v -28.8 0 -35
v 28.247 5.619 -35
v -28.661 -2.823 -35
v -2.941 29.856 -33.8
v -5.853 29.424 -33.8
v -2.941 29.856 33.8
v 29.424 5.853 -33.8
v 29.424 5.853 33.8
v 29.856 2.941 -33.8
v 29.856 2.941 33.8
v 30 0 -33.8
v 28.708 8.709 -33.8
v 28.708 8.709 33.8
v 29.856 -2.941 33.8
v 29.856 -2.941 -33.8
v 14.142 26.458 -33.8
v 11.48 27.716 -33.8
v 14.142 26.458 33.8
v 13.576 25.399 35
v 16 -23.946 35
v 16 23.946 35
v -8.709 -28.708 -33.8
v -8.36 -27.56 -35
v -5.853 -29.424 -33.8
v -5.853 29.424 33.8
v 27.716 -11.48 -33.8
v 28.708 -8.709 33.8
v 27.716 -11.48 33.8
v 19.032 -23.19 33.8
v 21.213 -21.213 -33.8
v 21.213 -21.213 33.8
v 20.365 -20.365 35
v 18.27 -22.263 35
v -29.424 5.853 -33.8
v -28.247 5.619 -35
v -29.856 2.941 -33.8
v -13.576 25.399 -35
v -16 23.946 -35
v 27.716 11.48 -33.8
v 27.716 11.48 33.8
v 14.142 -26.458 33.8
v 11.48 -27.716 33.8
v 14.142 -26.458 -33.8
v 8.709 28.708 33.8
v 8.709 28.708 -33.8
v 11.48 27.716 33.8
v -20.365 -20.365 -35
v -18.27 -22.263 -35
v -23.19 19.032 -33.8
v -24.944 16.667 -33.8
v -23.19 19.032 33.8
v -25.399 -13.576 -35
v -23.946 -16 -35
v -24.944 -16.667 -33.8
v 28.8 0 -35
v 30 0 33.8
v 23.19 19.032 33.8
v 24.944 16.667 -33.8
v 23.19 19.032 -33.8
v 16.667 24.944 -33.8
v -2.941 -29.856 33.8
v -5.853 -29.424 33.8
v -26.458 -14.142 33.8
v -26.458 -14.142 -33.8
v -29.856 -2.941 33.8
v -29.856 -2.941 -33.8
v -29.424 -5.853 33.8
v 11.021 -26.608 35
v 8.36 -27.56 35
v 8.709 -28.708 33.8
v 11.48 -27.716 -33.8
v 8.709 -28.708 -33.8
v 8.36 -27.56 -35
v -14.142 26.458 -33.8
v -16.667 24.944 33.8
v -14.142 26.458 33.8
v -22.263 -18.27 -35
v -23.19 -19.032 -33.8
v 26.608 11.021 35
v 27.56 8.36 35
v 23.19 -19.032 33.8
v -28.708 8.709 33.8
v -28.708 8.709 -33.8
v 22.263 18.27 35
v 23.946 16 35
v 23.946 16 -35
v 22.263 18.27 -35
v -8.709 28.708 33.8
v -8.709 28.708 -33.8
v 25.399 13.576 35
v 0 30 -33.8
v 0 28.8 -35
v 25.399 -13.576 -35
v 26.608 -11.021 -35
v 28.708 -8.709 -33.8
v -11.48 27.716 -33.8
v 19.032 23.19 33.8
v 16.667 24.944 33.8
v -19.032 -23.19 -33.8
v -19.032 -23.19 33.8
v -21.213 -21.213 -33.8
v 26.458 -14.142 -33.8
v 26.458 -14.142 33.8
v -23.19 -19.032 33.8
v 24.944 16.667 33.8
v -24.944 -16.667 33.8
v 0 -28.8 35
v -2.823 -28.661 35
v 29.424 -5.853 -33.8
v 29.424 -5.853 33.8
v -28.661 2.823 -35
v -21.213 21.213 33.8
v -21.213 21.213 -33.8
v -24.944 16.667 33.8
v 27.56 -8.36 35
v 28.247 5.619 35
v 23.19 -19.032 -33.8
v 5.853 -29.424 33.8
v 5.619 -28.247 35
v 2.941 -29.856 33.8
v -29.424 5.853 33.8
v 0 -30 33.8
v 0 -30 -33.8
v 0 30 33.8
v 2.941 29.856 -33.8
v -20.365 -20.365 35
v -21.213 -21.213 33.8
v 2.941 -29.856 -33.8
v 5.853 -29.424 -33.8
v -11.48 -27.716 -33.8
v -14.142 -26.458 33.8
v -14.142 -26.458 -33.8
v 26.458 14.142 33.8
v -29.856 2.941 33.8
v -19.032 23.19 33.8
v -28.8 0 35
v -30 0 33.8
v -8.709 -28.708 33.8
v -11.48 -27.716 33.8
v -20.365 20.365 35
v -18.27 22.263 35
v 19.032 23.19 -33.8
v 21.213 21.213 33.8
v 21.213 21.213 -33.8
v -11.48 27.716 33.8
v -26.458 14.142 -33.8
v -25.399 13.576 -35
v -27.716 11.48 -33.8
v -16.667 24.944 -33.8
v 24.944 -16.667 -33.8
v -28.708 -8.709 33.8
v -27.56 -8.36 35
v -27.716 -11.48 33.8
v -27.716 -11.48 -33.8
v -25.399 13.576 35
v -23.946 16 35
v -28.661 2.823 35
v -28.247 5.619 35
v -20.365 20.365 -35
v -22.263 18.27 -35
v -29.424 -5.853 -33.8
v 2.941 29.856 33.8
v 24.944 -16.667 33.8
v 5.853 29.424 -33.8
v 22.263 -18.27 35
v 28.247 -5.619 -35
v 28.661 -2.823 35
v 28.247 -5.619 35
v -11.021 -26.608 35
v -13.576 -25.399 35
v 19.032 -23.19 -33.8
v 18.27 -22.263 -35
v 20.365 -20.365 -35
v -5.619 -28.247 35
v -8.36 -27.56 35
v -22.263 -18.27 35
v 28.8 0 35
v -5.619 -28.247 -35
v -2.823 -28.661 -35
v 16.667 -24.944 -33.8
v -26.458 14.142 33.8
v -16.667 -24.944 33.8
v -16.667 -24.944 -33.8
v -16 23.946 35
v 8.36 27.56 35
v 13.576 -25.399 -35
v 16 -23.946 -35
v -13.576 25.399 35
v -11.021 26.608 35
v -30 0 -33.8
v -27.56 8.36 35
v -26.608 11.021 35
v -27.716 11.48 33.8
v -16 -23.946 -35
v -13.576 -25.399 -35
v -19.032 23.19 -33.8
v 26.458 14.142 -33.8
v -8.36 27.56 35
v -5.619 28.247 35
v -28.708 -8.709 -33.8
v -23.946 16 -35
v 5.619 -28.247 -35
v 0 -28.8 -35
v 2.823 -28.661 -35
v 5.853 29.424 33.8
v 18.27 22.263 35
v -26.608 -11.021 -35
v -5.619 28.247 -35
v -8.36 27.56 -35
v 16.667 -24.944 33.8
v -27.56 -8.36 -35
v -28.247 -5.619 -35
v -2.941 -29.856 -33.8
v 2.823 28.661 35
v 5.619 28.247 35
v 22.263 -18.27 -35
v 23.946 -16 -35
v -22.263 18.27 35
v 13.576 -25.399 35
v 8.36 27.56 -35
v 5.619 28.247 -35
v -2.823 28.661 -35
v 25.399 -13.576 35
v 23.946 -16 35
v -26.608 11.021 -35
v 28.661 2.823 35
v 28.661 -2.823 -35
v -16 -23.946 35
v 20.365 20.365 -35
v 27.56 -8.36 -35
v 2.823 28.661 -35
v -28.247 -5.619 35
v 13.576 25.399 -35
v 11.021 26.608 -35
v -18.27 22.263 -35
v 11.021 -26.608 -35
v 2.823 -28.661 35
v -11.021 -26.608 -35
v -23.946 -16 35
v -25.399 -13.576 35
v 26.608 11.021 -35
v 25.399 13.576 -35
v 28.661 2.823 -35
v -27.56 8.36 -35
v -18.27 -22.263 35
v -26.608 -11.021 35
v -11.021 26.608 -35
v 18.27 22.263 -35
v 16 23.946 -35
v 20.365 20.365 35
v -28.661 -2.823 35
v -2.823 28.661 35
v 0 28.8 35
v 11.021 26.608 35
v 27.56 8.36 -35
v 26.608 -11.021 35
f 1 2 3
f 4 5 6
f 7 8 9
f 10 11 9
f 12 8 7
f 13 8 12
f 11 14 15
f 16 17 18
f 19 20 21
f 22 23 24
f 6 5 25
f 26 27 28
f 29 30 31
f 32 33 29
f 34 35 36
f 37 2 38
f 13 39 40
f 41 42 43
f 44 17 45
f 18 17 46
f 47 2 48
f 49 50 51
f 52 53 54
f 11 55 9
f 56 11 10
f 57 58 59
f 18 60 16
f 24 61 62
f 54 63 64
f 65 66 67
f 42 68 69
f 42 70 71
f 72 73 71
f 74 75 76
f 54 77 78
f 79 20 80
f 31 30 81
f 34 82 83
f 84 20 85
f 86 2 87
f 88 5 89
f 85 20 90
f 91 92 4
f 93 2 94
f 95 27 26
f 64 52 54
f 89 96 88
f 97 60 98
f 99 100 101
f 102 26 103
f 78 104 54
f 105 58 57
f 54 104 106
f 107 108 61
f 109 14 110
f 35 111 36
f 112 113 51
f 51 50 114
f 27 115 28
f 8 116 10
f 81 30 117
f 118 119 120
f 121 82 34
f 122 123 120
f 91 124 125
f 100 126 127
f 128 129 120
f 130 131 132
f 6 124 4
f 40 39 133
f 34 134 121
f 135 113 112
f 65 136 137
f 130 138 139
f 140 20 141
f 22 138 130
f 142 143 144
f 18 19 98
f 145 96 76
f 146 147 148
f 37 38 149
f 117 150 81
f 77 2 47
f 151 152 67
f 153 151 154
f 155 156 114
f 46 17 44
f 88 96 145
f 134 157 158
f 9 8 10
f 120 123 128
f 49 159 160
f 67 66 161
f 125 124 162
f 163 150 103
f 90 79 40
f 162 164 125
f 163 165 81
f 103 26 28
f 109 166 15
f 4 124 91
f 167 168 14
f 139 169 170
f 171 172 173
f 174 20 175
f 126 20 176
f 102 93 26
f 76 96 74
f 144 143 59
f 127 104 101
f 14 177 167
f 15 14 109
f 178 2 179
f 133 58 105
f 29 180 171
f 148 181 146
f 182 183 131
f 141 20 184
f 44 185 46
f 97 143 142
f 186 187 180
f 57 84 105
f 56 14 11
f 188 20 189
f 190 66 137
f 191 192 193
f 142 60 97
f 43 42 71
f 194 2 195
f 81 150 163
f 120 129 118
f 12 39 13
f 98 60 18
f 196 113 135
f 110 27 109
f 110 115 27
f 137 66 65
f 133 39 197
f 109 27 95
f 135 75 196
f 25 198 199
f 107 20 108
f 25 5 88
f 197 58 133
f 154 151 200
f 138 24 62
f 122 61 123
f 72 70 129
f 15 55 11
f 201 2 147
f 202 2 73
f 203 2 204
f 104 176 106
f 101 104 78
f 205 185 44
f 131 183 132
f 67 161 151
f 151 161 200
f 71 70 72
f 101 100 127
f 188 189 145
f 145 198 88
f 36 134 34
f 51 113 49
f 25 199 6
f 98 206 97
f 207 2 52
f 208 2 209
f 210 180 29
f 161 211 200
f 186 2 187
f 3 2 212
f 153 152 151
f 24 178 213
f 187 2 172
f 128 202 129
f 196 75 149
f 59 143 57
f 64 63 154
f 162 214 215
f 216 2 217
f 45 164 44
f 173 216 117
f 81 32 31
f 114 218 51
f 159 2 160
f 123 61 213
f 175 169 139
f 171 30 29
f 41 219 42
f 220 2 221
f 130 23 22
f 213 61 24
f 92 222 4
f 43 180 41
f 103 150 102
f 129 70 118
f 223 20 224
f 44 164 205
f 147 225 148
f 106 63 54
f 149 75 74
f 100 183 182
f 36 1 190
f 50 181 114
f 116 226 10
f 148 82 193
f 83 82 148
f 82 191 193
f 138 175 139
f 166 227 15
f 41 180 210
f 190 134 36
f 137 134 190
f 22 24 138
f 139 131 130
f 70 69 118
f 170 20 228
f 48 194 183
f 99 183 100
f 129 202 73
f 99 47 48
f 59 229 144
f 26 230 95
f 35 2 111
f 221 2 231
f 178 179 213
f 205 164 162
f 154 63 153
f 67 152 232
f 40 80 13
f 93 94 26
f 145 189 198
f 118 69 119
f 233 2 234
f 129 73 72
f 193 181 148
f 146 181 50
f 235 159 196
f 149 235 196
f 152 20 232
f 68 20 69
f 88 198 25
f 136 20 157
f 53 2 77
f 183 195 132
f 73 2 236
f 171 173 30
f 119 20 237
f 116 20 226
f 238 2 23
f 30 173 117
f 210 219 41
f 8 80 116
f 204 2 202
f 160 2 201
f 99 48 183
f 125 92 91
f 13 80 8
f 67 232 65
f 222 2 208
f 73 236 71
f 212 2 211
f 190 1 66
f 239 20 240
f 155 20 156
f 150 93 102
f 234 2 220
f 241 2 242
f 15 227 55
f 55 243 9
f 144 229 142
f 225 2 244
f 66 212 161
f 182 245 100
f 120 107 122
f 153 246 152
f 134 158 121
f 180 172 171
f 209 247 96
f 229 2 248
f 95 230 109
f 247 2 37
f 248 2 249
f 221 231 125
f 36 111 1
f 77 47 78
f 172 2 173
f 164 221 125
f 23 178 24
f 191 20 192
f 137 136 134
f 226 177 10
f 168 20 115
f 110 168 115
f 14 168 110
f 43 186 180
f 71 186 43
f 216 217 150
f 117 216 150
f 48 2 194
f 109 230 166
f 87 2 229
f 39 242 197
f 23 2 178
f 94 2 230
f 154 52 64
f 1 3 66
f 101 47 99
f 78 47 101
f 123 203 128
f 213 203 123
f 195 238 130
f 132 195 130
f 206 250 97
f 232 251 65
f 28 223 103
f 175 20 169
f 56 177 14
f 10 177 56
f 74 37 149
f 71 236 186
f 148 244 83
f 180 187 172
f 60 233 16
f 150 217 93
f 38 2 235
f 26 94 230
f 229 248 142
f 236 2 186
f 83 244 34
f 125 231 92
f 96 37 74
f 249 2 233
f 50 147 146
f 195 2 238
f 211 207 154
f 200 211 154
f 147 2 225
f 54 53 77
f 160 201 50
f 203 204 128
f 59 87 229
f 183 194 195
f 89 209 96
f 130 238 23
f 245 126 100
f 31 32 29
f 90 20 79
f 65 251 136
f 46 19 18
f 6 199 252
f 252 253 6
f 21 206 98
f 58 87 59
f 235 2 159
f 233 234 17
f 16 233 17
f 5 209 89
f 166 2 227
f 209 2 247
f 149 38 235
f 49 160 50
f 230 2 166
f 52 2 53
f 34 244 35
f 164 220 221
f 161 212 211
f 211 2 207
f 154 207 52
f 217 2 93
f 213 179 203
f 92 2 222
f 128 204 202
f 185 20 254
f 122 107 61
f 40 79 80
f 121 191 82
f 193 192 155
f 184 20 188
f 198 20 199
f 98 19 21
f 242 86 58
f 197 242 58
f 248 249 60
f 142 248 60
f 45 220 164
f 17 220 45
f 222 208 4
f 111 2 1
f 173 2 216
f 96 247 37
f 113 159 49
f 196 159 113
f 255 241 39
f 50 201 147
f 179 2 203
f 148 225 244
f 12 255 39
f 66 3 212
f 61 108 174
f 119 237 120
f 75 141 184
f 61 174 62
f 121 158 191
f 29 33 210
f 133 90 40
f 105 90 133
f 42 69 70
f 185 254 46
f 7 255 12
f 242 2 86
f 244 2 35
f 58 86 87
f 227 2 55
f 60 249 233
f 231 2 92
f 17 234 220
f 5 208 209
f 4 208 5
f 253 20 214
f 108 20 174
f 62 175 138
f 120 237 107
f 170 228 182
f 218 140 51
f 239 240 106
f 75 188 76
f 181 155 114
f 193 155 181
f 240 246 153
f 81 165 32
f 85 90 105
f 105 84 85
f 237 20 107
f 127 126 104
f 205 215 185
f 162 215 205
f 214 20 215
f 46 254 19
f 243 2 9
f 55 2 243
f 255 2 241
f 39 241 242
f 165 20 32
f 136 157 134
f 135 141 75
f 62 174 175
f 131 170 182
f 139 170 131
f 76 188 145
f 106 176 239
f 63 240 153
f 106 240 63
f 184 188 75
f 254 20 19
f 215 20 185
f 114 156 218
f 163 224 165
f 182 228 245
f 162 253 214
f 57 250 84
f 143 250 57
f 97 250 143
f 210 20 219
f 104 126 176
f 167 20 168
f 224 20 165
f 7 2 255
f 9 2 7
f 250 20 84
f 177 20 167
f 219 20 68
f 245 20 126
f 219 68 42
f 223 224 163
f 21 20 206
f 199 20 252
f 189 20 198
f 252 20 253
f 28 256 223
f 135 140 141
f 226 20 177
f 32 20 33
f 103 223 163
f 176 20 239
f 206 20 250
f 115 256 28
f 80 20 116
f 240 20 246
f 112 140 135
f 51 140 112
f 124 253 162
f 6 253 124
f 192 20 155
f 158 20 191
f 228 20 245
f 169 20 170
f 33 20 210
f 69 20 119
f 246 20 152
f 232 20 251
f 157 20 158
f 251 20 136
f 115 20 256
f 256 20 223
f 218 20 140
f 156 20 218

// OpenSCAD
// file: _common.scad
// orthographic 共用尺寸 / 解析度設定
// 所有物件外接立方控制在 ~80 mm，方便相機固定縮放
$fn = 64;  // 圓面解析度（影響 STL 大小，64 在視覺與大小取得平衡）
CHAMFER = 1.2;  // 標準導角尺寸
// main file
// 圓柱（直徑 60、高 70，兩端做小導角）
include <_common.scad>

H = 70;
R = 30;
C = CHAMFER;

translate([0, 0, -H / 2]) hull() {
  translate([0, 0, C]) cylinder(h = H - 2 * C, r = R, $fn = $fn);
  cylinder(h = 0.01, r = R - C, $fn = $fn);
  translate([0, 0, H - 0.01]) cylinder(h = 0.01, r = R - C, $fn = $fn);
}
